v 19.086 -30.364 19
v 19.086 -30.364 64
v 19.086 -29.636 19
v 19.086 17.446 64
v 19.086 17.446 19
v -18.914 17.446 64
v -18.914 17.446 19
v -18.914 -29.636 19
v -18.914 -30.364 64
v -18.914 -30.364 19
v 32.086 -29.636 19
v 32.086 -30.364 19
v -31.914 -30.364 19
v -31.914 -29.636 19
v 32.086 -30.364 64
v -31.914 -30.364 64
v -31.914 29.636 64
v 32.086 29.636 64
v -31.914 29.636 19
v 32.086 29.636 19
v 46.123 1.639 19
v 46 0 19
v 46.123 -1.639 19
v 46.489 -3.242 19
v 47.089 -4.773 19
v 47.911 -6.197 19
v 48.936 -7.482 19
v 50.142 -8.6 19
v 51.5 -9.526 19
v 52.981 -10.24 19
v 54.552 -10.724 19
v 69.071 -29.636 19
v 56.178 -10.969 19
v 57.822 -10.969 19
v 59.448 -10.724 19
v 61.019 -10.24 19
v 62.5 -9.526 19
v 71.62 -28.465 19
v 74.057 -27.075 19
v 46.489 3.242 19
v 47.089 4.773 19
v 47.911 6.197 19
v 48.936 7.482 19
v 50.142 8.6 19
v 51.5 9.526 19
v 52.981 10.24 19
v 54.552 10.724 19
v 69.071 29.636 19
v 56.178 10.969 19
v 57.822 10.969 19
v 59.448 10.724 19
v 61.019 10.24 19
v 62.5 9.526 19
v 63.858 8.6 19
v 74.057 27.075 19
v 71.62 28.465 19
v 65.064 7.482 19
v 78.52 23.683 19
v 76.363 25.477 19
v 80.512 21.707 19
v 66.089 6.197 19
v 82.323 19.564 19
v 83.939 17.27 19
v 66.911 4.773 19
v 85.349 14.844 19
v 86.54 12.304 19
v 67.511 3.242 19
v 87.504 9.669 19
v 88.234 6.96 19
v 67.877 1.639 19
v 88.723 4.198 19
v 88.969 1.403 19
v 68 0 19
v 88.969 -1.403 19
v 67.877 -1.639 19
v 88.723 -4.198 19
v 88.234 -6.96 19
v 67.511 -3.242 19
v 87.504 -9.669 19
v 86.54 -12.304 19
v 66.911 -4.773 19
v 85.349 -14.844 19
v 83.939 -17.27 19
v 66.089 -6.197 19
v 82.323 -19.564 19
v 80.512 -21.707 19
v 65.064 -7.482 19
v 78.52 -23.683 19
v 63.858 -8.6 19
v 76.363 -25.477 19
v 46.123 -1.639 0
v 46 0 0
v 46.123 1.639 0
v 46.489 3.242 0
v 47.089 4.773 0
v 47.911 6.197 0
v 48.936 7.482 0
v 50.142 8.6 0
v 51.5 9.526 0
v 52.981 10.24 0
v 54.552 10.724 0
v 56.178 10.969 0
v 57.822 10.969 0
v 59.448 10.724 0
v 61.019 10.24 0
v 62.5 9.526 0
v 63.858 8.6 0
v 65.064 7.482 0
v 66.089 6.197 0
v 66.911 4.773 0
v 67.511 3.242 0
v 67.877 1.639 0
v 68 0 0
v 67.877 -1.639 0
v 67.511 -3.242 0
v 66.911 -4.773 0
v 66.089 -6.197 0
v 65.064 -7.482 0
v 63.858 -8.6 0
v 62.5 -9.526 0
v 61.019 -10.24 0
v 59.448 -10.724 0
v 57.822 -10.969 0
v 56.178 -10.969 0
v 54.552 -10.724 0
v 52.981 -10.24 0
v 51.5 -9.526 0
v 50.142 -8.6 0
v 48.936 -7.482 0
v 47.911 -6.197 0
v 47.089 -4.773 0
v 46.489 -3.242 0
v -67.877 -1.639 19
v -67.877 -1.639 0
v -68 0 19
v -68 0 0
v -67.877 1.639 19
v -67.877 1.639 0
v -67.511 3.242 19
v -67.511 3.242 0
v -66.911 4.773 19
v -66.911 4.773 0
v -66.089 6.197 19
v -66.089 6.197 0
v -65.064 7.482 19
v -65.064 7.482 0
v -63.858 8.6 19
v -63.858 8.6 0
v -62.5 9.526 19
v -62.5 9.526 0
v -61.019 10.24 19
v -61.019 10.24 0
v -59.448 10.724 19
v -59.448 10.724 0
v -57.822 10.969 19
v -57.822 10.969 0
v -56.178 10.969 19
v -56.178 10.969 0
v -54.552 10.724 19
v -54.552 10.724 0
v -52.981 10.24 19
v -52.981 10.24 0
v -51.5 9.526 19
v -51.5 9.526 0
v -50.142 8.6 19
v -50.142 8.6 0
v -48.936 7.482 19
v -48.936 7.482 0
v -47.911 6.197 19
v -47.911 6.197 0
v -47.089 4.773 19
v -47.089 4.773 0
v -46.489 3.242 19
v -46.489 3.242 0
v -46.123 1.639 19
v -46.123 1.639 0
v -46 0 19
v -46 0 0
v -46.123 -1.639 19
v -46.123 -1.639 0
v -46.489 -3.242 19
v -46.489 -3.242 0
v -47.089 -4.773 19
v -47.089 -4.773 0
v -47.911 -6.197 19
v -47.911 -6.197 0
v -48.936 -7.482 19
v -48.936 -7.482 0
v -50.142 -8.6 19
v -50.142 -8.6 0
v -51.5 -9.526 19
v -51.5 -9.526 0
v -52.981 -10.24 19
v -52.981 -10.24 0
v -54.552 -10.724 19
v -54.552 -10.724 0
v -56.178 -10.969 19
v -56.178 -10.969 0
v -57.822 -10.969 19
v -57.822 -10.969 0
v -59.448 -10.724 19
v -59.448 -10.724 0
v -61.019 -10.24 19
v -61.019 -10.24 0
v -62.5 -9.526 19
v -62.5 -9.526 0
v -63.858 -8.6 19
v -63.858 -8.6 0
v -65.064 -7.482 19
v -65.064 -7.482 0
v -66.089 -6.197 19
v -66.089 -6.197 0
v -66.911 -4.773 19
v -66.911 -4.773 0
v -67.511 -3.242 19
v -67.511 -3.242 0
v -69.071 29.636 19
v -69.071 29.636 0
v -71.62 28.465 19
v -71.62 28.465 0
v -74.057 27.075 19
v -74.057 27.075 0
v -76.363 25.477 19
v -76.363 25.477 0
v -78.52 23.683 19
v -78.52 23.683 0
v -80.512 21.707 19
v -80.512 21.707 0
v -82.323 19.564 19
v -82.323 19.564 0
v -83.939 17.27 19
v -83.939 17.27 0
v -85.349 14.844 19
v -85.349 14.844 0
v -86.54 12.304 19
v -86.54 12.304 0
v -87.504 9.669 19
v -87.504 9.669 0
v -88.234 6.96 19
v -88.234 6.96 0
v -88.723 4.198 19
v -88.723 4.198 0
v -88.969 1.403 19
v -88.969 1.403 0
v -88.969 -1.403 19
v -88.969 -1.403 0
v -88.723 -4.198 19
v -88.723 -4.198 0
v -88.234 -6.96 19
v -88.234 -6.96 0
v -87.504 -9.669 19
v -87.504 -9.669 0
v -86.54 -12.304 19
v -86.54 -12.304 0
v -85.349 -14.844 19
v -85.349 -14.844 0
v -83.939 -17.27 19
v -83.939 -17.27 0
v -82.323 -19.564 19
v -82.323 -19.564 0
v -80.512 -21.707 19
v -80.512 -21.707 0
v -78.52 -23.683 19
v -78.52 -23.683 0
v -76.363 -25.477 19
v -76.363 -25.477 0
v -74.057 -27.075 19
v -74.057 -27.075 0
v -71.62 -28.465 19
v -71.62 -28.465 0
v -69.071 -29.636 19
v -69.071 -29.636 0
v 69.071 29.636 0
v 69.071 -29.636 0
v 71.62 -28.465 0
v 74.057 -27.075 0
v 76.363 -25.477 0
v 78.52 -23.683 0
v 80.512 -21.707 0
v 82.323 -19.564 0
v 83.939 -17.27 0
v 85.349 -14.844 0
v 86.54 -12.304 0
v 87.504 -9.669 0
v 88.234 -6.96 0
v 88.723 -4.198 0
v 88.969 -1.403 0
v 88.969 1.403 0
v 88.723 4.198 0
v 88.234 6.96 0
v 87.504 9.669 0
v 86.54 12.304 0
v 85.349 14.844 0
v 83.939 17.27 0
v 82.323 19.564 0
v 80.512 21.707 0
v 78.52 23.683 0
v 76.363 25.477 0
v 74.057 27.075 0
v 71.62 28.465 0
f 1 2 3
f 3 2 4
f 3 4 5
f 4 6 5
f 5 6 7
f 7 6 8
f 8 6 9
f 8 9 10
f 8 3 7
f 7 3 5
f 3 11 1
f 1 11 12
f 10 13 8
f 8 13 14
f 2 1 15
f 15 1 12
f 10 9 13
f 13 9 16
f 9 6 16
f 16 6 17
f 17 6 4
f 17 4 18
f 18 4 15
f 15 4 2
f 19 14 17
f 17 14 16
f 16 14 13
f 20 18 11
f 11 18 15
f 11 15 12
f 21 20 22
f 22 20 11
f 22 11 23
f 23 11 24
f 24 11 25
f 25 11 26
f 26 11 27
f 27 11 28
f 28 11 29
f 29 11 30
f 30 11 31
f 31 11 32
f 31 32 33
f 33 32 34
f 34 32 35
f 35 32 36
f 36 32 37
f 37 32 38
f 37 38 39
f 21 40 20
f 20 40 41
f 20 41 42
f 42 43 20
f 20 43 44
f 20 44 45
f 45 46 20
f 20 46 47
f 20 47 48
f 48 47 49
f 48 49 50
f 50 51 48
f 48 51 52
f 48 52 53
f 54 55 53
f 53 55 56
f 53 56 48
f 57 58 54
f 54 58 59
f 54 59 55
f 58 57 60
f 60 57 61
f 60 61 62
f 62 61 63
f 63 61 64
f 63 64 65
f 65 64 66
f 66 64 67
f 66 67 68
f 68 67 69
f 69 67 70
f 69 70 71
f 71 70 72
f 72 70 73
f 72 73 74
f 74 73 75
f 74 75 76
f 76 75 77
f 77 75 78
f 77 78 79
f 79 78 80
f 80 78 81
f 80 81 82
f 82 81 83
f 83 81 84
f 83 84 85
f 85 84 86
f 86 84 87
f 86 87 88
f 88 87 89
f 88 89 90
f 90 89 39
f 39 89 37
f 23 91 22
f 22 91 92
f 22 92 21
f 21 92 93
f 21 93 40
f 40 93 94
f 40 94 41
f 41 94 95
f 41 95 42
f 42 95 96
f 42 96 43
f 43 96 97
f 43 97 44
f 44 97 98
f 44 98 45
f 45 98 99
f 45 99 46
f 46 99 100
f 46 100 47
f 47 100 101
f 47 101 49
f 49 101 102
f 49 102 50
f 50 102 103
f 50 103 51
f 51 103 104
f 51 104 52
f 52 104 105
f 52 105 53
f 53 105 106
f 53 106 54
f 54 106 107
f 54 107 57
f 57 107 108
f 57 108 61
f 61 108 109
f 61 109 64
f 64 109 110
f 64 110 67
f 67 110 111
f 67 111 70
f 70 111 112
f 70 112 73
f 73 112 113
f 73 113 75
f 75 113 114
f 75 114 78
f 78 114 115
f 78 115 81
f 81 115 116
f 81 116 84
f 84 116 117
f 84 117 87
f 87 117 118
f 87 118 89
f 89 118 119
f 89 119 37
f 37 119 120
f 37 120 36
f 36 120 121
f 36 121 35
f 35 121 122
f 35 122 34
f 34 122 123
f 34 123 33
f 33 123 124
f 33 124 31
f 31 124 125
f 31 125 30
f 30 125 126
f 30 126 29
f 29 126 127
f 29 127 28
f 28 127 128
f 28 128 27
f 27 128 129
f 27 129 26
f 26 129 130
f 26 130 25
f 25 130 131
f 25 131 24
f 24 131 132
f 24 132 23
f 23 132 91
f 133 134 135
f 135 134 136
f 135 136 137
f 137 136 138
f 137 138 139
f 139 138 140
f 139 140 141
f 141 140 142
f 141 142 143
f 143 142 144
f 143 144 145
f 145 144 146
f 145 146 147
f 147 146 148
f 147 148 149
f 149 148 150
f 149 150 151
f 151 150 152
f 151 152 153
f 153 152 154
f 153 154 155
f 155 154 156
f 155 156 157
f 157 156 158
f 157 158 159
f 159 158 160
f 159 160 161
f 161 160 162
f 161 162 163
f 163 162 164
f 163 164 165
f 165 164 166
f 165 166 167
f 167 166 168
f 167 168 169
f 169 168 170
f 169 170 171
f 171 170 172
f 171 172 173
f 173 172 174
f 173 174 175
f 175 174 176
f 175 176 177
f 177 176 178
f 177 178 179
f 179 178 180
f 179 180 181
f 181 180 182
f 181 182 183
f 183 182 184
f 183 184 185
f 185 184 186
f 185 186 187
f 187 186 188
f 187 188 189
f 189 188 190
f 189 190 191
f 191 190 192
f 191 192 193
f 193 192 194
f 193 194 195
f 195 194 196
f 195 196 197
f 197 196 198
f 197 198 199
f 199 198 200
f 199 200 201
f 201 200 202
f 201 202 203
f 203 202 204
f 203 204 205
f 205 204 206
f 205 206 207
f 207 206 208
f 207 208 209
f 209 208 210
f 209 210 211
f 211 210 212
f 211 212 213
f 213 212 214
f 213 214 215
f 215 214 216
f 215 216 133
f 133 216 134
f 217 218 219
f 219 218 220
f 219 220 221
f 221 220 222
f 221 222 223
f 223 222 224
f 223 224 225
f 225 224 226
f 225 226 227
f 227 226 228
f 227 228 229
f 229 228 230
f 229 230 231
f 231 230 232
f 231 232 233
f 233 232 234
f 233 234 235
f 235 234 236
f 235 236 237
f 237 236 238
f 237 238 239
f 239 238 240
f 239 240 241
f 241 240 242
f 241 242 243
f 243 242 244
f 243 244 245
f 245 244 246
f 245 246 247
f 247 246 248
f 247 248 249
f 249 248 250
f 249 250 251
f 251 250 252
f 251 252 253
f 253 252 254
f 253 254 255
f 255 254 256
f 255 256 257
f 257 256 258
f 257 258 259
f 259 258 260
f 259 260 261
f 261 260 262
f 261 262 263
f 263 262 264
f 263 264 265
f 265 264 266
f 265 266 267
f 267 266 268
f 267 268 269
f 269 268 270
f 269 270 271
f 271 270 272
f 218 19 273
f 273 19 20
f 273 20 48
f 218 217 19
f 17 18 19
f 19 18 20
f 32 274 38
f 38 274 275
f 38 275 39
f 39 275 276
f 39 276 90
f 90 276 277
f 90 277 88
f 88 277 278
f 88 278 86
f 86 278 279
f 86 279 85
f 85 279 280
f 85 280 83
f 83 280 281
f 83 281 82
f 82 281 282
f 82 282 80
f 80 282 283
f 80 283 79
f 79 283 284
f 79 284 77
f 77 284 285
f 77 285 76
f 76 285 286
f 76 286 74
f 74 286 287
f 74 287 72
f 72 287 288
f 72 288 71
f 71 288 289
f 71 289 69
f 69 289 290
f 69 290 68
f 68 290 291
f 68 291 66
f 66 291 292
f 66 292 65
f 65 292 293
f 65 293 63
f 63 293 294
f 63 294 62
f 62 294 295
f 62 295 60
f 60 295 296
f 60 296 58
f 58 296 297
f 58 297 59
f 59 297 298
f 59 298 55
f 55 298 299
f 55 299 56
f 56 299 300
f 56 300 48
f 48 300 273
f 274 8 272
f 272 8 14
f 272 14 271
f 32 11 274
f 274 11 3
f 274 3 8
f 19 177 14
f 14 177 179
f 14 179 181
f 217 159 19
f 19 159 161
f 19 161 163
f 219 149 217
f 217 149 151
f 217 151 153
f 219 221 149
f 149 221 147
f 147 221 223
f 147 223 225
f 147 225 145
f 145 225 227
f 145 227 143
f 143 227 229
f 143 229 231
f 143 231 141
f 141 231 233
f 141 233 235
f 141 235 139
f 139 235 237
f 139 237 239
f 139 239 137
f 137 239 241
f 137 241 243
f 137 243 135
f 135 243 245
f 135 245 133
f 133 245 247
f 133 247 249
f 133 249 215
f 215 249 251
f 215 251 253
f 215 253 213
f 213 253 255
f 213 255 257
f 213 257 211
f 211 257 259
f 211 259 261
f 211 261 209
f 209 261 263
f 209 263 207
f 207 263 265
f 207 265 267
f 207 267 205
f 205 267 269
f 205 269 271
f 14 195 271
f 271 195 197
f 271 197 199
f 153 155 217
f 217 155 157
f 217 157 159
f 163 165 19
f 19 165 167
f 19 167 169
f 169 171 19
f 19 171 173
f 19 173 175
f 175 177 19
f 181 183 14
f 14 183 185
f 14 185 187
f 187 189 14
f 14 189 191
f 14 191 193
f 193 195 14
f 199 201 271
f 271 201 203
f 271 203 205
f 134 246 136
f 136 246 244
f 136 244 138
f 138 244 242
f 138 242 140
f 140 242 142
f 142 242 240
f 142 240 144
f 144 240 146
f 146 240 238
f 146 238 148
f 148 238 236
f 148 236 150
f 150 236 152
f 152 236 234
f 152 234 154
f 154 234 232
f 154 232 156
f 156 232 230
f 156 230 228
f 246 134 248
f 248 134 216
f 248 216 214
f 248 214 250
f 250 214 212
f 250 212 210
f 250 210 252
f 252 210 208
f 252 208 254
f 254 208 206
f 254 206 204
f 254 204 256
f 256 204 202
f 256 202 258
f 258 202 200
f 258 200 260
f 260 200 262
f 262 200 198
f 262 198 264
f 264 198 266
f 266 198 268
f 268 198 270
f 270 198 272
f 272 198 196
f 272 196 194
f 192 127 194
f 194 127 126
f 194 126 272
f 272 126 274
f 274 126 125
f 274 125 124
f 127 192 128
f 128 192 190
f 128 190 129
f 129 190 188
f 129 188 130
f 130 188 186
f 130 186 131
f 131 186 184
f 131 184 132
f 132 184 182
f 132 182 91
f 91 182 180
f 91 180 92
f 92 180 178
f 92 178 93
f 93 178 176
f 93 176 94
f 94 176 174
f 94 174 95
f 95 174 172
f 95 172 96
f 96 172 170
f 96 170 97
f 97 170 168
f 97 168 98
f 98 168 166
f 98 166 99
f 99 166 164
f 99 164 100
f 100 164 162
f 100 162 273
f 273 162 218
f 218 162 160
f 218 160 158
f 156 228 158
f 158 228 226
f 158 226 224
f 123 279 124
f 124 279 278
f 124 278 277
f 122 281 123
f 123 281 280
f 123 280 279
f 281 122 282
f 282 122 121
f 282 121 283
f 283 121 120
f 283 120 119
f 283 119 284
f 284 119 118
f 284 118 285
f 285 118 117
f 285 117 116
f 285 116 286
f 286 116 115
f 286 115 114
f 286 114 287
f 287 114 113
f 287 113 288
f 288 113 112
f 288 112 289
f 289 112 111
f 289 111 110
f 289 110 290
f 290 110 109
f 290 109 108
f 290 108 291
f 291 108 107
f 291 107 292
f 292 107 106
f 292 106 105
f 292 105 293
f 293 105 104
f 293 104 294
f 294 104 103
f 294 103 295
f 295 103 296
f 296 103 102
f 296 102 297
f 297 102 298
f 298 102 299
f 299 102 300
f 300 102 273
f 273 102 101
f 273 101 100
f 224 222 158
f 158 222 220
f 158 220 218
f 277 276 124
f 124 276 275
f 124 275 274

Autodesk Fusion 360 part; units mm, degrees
sketch "Sketch2" plane through (0, 0, 0) normal (0, 0, 1) x (1, 0, 0)
  line L0 (57, 29.6362) -> (-57, 29.6362)
  line L1 (-57, 29.6362) -> (-57, -29.6362)
  line L2 (-57, -29.6362) -> (57, -29.6362)
  line L3 (57, -29.6362) -> (57, 29.6362)
  line L4 (57, 29.6362) -> (-57, -29.6362) construction
  line L5 (-57, 29.6362) -> (57, -29.6362) construction
  circle A0 centre (57, 0) radius 11
  circle A1 centre (-57, 0) radius 11
  line L6 (57, 29.6362) -> (69.0705, 29.6362)
  line L7 (57, -29.6362) -> (69.0705, -29.6362)
  line L8 (69.0705, 29.6362) -> (69.0705, -29.6362)
  line L9 (-57, -29.6362) -> (-69.0705, -29.6362)
  line L10 (-57, 29.6362) -> (-69.0705, 29.6362)
  line L11 (-69.0705, 29.6362) -> (-69.0705, -29.6362)
  arc A2 (-69.0705, 29.6362) -> (-69.0705, -29.6362) centre (-57, 0) ccw
  arc A3 (69.0705, -29.6362) -> (69.0705, 29.6362) centre (57, 0) ccw
  dimension "d1" = 114
  dimension "d2" = 59.2723
  dimension "d3" = 22
  dimension "d4" = 22
  dimension "d5" = 64
  dimension "d6" = 64
extrude "Extrude1" add sketch "Sketch2" along normal blind 19 contours L0 L1 L2 L3 A0 A1 | L3 A0 L6 L7 L8 | L1 A1 L9 L10 L11 | L8 A3 | L11 A2
sketch "Sketch3" plane through (0, 0, 19) normal (0, 0, 1) x (-1, 0, 0)
  circle A0 centre (57, 0) radius 11
  circle A1 centre (-57, 0) radius 11
  line L0 (69.0705, 29.6362) -> (-69.0705, 29.6362)
  arc A2 (-69.0705, 29.6362) -> (-69.0705, -29.6362) centre (-57, 0) ccw
  line L1 (-69.0705, -29.6362) -> (69.0705, -29.6362)
  arc A3 (69.0705, -29.6362) -> (69.0705, 29.6362) centre (57, 0) ccw
  line L2 (32, -29.6362) -> (32, 29.6362) construction
  line L3 (-32, -29.6362) -> (-32, 29.6362) construction
  dimension "d9" = 64
  dimension "d10" = 25
sketch "Sketch4" plane through (0, 29.6362, 0) normal (0, 1, 0) x (-1, 0, 0)
  line L0 (-69.0705, 0) -> (69.0705, 0)
  line L1 (69.0705, 0) -> (69.0705, 19)
  line L2 (69.0705, 19) -> (-69.0705, 19)
  line L3 (-69.0705, 19) -> (-69.0705, 0)
  line L4 (-32.0857, 19) -> (31.9143, 19)
  line L5 (31.9143, 19) -> (31.9143, 64)
  line L6 (31.9143, 64) -> (-32.0857, 64)
  line L7 (-32.0857, 64) -> (-32.0857, 19)
  dimension "d11" = 64
  dimension "d12" = 45
extrude "Extrude2" add sketch "Sketch4" against normal blind 60 contours L2 L4 L5 L6 L7
sketch "Sketch5" plane through (0, 0, 64) normal (0, 0, 1) x (-1, 0, 0)
  line L0 (-32.0857, -29.6362) -> (31.9143, -29.6362)
  line L1 (31.9143, -29.6362) -> (31.9143, 30.3638)
  line L2 (31.9143, 30.3638) -> (-32.0857, 30.3638)
  line L3 (-32.0857, 30.3638) -> (-32.0857, -29.6362)
  line L4 (31.9143, -17.4462) -> (-32.0857, -17.4462)
  line L5 (18.9143, -17.4462) -> (18.9143, 30.3638)
  line L6 (-19.0857, -17.4462) -> (-19.0857, 30.3638)
  dimension "d15" = 12.19
  dimension "d16" = 38
  dimension "d17" = 13
extrude "Extrude3" cut sketch "Sketch5" against normal blind 45 contours L2 L4 L5 L6
equation "d12 = 64 mm - 19 mm"
